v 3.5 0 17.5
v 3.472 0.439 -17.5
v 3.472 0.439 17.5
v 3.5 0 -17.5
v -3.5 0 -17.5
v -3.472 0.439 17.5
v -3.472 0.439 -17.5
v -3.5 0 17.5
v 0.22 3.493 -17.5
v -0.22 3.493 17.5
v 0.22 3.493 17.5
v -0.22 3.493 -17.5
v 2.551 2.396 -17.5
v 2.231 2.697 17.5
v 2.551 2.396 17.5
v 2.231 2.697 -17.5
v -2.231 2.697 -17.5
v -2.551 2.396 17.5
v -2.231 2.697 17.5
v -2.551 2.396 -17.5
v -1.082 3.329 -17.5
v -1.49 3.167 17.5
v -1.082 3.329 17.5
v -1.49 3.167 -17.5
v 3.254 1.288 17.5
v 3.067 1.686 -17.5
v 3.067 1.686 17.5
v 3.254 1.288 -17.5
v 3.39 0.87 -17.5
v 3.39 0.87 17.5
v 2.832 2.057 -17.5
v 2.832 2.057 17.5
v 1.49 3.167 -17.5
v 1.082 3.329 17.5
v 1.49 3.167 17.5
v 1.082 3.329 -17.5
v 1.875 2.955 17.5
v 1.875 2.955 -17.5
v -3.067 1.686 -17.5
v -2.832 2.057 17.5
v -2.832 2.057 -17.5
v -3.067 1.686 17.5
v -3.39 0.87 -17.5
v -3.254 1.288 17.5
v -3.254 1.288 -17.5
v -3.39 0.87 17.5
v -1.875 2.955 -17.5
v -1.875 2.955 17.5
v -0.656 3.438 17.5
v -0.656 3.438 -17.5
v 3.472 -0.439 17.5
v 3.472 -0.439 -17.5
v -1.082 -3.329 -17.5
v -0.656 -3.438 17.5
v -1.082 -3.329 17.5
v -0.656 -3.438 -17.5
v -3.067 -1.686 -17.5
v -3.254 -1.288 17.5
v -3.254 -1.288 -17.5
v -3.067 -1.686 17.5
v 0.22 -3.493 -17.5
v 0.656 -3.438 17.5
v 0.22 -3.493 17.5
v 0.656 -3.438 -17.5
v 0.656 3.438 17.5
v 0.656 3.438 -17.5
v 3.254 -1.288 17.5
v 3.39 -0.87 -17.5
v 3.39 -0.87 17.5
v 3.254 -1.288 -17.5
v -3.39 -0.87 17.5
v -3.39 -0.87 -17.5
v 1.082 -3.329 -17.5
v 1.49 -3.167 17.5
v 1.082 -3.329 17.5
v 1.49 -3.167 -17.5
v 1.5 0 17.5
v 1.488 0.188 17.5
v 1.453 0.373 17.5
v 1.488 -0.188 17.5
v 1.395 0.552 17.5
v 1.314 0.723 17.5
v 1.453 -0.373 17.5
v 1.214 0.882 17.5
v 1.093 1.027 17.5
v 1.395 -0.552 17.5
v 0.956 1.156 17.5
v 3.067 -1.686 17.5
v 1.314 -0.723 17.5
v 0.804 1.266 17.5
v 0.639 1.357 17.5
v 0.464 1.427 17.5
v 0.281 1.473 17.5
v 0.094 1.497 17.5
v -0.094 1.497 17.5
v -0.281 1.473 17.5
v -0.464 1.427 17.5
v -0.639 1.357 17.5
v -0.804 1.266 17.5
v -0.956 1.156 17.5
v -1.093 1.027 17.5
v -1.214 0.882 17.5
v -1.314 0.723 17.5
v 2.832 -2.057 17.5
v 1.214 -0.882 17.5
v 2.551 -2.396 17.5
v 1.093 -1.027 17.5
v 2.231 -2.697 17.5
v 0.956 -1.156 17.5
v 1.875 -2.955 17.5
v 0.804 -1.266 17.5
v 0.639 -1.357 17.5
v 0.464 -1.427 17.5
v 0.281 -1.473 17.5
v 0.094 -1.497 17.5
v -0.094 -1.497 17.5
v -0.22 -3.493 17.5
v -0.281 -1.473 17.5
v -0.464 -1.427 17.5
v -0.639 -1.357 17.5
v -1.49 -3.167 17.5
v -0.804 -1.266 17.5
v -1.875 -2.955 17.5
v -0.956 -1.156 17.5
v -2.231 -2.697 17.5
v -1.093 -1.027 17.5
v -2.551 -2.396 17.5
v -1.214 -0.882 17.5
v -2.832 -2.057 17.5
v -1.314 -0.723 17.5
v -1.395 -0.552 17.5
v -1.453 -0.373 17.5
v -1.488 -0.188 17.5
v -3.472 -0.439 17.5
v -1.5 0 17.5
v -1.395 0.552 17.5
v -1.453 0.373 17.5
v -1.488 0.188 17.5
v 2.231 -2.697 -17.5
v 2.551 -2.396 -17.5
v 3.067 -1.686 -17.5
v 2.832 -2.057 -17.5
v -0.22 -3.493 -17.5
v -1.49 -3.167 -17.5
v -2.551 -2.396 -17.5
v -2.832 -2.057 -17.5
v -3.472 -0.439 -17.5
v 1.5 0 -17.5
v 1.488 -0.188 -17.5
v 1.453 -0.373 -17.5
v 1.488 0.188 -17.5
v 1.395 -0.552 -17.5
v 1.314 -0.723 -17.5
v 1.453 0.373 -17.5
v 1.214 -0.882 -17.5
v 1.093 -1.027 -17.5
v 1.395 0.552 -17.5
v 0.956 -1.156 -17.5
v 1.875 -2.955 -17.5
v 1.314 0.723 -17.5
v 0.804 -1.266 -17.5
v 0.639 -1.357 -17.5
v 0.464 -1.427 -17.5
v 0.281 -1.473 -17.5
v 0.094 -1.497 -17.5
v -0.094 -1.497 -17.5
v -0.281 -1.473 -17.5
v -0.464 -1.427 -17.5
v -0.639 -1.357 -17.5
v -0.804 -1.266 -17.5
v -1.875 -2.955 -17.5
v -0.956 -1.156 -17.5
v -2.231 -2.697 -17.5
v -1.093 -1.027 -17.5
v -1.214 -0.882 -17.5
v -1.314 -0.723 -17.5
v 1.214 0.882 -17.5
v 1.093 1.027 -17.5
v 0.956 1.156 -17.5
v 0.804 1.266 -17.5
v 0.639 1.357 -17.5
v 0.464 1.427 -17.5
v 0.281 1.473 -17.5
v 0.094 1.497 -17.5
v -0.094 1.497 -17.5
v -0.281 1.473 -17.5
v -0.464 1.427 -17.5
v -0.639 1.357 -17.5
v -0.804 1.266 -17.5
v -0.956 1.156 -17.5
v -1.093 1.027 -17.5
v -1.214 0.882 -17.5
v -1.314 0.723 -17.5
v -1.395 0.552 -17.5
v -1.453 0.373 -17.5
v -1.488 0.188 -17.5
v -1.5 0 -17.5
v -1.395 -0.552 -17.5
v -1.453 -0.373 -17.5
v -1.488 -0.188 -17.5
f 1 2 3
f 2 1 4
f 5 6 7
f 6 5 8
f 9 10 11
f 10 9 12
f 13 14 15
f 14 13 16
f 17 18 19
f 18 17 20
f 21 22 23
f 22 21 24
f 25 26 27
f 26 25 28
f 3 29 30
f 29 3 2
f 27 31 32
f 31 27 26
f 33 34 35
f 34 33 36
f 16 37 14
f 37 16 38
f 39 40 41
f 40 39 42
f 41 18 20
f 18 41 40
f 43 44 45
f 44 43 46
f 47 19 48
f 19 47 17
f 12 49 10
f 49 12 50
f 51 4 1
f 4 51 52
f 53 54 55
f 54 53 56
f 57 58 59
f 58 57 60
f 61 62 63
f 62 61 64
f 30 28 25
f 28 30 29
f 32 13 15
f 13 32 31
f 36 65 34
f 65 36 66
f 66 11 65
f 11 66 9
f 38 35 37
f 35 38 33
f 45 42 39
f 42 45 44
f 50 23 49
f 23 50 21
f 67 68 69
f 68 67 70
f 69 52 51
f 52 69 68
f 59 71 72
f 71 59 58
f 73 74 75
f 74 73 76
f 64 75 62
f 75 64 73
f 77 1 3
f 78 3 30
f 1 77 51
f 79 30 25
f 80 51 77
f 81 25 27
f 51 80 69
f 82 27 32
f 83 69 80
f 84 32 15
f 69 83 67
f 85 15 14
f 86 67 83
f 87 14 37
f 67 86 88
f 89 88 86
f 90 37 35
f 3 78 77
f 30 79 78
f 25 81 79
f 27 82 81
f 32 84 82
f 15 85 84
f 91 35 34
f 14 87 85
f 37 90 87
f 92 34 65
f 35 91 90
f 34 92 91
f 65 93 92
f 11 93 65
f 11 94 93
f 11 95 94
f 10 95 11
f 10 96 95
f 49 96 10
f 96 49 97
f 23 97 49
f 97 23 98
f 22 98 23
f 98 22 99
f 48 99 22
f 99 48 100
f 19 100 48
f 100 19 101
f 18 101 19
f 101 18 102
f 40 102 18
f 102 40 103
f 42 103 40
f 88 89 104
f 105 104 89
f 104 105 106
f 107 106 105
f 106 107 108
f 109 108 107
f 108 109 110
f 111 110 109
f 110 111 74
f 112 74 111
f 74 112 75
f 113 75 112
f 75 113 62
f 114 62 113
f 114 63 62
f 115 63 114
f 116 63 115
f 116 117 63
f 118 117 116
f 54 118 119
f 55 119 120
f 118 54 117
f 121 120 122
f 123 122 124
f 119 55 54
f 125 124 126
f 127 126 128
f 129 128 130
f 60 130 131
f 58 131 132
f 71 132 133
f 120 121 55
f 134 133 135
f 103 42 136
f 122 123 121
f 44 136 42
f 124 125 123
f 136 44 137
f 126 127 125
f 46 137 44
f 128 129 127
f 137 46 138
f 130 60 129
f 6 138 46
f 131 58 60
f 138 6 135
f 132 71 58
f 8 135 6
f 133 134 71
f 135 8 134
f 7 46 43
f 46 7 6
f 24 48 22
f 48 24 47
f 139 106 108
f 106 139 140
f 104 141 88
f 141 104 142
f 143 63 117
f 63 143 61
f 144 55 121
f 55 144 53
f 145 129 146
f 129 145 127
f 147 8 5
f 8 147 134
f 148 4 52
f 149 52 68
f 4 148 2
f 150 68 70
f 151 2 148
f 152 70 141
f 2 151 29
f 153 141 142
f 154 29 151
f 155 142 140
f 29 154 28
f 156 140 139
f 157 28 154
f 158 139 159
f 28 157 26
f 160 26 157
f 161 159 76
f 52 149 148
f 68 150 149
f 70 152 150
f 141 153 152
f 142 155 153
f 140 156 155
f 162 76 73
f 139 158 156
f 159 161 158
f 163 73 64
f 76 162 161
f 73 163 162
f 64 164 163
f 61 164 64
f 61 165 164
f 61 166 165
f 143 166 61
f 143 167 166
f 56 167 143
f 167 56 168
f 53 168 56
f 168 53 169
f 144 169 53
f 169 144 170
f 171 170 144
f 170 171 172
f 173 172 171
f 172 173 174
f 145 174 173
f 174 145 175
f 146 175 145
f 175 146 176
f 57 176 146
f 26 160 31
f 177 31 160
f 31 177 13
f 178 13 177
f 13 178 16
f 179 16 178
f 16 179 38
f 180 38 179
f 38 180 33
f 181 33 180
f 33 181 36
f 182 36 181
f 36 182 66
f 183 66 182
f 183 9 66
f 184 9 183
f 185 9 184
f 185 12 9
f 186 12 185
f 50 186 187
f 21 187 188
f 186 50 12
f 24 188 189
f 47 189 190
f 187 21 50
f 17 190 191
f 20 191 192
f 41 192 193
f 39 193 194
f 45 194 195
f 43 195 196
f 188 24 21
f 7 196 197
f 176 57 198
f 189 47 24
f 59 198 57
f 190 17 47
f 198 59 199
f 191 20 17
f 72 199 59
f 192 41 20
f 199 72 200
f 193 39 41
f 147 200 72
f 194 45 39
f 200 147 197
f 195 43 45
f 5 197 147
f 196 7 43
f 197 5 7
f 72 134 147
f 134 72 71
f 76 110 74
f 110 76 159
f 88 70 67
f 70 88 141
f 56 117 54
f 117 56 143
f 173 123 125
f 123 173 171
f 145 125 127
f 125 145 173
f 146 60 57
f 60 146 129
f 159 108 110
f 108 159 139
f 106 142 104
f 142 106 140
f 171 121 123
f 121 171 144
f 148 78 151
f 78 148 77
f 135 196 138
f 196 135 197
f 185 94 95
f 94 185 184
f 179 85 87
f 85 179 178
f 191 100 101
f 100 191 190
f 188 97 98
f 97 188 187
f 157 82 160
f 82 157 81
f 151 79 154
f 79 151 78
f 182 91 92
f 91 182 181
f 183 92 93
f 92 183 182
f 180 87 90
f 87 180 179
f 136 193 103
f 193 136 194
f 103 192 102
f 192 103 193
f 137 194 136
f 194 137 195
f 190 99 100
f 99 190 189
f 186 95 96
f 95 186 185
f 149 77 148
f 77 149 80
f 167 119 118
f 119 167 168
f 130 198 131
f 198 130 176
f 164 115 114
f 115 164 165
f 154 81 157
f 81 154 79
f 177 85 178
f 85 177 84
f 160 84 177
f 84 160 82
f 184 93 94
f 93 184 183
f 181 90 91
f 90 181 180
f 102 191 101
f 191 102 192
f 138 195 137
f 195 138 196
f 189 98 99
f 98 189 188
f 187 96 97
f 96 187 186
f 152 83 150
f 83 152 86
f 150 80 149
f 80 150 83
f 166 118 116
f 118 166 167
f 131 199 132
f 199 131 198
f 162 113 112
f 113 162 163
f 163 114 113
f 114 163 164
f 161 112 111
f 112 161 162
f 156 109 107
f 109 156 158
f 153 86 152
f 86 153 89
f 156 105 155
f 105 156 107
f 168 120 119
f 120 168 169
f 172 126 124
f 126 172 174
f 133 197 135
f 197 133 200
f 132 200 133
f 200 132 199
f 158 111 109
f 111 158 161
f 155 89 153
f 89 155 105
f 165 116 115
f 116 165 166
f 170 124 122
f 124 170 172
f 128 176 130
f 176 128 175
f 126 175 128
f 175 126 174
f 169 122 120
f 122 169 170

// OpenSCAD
$fn = 50;


difference() {
	union() {
		translate(v = [0, 0, -17.5000000000]) {
			cylinder(h = 35, r = 3.5000000000);
		}
	}
	union() {
		translate(v = [0, 0, -100.0000000000]) {
			cylinder(h = 200, r = 1.5000000000);
		}
	}
}
